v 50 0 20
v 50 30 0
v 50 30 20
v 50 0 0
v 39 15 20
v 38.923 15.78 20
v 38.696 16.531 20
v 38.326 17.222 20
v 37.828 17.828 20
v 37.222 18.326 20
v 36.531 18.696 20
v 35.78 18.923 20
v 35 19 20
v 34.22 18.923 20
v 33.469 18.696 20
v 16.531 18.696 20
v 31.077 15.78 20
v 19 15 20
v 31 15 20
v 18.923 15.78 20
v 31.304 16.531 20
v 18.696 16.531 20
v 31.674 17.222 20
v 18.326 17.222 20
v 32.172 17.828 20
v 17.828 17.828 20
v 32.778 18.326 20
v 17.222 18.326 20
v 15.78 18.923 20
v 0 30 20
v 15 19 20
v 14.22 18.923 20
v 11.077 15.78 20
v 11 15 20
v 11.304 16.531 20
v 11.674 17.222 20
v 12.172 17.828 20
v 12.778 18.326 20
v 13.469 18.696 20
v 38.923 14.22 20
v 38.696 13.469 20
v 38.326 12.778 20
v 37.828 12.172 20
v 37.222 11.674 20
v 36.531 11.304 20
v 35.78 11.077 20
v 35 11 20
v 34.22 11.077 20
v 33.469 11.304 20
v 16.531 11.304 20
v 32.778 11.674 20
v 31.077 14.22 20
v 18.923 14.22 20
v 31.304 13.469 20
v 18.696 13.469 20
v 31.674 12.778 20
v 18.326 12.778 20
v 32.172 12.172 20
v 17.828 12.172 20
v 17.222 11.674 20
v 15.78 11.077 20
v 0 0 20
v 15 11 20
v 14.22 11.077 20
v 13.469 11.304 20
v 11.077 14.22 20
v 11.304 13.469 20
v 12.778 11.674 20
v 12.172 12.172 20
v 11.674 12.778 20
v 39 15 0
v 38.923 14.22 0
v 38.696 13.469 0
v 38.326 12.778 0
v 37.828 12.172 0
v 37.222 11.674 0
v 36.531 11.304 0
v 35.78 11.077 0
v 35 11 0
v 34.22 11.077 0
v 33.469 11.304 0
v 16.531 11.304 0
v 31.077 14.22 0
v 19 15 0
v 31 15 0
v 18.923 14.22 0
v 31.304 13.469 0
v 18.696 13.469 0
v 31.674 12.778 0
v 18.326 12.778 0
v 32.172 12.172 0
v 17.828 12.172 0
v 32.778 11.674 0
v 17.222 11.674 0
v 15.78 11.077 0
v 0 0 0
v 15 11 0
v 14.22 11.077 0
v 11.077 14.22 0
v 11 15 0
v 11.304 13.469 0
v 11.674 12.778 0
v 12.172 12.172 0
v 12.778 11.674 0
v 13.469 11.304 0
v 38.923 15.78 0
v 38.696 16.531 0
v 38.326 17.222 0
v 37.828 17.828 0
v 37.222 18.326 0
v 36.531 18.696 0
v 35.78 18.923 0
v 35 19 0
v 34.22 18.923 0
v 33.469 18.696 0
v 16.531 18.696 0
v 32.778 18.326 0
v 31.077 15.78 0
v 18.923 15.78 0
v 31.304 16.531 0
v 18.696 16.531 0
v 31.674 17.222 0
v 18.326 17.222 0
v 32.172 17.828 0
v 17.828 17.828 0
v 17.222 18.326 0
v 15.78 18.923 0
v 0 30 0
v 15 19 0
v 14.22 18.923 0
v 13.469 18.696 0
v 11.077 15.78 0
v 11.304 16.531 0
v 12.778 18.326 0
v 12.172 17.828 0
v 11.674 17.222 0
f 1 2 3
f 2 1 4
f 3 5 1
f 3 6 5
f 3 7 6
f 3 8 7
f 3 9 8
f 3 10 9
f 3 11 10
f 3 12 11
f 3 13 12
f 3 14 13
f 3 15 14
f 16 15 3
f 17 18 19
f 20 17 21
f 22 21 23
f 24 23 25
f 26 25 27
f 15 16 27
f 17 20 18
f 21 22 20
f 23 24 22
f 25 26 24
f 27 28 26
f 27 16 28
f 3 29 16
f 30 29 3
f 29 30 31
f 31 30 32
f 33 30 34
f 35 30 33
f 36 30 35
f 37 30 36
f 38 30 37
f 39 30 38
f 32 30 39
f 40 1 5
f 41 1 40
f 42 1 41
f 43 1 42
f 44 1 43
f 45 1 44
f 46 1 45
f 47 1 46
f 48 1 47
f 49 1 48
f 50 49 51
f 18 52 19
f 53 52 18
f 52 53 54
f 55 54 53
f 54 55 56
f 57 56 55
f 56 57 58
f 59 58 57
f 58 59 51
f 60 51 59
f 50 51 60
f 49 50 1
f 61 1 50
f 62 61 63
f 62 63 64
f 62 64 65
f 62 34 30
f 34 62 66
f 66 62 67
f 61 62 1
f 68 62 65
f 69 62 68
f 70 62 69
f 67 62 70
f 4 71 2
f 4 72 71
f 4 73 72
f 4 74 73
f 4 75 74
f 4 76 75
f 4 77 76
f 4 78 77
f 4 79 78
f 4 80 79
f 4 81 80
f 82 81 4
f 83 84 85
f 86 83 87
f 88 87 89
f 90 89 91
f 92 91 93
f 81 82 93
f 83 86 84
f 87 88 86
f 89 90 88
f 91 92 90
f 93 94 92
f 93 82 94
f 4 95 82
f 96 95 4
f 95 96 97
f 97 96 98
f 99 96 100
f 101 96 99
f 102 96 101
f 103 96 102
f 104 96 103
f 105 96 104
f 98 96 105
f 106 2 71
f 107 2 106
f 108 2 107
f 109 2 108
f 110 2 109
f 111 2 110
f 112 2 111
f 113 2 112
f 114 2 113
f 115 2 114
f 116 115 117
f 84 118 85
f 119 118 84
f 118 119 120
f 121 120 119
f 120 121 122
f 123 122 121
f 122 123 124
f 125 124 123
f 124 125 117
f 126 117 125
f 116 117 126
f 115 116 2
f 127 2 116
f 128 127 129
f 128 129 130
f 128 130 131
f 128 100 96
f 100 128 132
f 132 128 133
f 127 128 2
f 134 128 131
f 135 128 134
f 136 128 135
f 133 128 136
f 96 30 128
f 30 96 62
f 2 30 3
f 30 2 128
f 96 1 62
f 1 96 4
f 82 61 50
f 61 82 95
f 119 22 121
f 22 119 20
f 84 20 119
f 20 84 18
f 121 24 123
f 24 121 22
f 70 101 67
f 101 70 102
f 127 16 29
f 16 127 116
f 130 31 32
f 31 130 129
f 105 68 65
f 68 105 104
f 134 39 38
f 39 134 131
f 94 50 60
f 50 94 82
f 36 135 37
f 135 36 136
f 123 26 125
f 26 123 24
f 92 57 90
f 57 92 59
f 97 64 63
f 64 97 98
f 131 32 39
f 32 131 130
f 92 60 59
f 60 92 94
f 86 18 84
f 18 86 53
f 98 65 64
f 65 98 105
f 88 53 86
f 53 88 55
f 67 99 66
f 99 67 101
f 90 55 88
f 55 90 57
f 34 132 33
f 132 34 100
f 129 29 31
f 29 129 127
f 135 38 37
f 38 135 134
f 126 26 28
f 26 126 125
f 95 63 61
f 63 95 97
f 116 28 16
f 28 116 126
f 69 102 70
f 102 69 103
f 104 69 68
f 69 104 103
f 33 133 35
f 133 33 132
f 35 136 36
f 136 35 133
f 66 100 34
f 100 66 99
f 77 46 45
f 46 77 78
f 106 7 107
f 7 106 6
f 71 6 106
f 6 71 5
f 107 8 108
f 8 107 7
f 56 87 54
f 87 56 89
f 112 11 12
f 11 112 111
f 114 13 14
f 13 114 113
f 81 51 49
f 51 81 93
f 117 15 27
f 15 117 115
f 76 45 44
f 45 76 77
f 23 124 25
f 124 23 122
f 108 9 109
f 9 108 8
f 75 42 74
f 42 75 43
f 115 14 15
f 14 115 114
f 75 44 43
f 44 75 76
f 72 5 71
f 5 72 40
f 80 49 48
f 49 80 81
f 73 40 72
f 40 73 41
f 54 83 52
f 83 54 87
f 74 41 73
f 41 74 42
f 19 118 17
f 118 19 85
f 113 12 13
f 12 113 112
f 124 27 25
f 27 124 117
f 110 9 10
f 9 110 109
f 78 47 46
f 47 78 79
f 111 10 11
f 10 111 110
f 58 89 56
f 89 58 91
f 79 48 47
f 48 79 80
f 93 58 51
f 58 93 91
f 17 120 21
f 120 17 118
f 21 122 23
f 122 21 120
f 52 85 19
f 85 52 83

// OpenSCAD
module connector(width, height, depth, hole_diameter, hole_distance) {
  difference() {
    cube([width, height, depth]);
    translate([hole_distance, hole_distance, -0.1])
    cylinder(h = depth + 0.2, r = hole_diameter / 2, $fn = 32);
    translate([width - hole_distance, height - hole_distance, -0.1])
    cylinder(h = depth + 0.2, r = hole_diameter / 2, $fn = 32);
  }
}

connector(width = 50, height = 30, depth = 20, hole_diameter = 8, hole_distance = 15);
